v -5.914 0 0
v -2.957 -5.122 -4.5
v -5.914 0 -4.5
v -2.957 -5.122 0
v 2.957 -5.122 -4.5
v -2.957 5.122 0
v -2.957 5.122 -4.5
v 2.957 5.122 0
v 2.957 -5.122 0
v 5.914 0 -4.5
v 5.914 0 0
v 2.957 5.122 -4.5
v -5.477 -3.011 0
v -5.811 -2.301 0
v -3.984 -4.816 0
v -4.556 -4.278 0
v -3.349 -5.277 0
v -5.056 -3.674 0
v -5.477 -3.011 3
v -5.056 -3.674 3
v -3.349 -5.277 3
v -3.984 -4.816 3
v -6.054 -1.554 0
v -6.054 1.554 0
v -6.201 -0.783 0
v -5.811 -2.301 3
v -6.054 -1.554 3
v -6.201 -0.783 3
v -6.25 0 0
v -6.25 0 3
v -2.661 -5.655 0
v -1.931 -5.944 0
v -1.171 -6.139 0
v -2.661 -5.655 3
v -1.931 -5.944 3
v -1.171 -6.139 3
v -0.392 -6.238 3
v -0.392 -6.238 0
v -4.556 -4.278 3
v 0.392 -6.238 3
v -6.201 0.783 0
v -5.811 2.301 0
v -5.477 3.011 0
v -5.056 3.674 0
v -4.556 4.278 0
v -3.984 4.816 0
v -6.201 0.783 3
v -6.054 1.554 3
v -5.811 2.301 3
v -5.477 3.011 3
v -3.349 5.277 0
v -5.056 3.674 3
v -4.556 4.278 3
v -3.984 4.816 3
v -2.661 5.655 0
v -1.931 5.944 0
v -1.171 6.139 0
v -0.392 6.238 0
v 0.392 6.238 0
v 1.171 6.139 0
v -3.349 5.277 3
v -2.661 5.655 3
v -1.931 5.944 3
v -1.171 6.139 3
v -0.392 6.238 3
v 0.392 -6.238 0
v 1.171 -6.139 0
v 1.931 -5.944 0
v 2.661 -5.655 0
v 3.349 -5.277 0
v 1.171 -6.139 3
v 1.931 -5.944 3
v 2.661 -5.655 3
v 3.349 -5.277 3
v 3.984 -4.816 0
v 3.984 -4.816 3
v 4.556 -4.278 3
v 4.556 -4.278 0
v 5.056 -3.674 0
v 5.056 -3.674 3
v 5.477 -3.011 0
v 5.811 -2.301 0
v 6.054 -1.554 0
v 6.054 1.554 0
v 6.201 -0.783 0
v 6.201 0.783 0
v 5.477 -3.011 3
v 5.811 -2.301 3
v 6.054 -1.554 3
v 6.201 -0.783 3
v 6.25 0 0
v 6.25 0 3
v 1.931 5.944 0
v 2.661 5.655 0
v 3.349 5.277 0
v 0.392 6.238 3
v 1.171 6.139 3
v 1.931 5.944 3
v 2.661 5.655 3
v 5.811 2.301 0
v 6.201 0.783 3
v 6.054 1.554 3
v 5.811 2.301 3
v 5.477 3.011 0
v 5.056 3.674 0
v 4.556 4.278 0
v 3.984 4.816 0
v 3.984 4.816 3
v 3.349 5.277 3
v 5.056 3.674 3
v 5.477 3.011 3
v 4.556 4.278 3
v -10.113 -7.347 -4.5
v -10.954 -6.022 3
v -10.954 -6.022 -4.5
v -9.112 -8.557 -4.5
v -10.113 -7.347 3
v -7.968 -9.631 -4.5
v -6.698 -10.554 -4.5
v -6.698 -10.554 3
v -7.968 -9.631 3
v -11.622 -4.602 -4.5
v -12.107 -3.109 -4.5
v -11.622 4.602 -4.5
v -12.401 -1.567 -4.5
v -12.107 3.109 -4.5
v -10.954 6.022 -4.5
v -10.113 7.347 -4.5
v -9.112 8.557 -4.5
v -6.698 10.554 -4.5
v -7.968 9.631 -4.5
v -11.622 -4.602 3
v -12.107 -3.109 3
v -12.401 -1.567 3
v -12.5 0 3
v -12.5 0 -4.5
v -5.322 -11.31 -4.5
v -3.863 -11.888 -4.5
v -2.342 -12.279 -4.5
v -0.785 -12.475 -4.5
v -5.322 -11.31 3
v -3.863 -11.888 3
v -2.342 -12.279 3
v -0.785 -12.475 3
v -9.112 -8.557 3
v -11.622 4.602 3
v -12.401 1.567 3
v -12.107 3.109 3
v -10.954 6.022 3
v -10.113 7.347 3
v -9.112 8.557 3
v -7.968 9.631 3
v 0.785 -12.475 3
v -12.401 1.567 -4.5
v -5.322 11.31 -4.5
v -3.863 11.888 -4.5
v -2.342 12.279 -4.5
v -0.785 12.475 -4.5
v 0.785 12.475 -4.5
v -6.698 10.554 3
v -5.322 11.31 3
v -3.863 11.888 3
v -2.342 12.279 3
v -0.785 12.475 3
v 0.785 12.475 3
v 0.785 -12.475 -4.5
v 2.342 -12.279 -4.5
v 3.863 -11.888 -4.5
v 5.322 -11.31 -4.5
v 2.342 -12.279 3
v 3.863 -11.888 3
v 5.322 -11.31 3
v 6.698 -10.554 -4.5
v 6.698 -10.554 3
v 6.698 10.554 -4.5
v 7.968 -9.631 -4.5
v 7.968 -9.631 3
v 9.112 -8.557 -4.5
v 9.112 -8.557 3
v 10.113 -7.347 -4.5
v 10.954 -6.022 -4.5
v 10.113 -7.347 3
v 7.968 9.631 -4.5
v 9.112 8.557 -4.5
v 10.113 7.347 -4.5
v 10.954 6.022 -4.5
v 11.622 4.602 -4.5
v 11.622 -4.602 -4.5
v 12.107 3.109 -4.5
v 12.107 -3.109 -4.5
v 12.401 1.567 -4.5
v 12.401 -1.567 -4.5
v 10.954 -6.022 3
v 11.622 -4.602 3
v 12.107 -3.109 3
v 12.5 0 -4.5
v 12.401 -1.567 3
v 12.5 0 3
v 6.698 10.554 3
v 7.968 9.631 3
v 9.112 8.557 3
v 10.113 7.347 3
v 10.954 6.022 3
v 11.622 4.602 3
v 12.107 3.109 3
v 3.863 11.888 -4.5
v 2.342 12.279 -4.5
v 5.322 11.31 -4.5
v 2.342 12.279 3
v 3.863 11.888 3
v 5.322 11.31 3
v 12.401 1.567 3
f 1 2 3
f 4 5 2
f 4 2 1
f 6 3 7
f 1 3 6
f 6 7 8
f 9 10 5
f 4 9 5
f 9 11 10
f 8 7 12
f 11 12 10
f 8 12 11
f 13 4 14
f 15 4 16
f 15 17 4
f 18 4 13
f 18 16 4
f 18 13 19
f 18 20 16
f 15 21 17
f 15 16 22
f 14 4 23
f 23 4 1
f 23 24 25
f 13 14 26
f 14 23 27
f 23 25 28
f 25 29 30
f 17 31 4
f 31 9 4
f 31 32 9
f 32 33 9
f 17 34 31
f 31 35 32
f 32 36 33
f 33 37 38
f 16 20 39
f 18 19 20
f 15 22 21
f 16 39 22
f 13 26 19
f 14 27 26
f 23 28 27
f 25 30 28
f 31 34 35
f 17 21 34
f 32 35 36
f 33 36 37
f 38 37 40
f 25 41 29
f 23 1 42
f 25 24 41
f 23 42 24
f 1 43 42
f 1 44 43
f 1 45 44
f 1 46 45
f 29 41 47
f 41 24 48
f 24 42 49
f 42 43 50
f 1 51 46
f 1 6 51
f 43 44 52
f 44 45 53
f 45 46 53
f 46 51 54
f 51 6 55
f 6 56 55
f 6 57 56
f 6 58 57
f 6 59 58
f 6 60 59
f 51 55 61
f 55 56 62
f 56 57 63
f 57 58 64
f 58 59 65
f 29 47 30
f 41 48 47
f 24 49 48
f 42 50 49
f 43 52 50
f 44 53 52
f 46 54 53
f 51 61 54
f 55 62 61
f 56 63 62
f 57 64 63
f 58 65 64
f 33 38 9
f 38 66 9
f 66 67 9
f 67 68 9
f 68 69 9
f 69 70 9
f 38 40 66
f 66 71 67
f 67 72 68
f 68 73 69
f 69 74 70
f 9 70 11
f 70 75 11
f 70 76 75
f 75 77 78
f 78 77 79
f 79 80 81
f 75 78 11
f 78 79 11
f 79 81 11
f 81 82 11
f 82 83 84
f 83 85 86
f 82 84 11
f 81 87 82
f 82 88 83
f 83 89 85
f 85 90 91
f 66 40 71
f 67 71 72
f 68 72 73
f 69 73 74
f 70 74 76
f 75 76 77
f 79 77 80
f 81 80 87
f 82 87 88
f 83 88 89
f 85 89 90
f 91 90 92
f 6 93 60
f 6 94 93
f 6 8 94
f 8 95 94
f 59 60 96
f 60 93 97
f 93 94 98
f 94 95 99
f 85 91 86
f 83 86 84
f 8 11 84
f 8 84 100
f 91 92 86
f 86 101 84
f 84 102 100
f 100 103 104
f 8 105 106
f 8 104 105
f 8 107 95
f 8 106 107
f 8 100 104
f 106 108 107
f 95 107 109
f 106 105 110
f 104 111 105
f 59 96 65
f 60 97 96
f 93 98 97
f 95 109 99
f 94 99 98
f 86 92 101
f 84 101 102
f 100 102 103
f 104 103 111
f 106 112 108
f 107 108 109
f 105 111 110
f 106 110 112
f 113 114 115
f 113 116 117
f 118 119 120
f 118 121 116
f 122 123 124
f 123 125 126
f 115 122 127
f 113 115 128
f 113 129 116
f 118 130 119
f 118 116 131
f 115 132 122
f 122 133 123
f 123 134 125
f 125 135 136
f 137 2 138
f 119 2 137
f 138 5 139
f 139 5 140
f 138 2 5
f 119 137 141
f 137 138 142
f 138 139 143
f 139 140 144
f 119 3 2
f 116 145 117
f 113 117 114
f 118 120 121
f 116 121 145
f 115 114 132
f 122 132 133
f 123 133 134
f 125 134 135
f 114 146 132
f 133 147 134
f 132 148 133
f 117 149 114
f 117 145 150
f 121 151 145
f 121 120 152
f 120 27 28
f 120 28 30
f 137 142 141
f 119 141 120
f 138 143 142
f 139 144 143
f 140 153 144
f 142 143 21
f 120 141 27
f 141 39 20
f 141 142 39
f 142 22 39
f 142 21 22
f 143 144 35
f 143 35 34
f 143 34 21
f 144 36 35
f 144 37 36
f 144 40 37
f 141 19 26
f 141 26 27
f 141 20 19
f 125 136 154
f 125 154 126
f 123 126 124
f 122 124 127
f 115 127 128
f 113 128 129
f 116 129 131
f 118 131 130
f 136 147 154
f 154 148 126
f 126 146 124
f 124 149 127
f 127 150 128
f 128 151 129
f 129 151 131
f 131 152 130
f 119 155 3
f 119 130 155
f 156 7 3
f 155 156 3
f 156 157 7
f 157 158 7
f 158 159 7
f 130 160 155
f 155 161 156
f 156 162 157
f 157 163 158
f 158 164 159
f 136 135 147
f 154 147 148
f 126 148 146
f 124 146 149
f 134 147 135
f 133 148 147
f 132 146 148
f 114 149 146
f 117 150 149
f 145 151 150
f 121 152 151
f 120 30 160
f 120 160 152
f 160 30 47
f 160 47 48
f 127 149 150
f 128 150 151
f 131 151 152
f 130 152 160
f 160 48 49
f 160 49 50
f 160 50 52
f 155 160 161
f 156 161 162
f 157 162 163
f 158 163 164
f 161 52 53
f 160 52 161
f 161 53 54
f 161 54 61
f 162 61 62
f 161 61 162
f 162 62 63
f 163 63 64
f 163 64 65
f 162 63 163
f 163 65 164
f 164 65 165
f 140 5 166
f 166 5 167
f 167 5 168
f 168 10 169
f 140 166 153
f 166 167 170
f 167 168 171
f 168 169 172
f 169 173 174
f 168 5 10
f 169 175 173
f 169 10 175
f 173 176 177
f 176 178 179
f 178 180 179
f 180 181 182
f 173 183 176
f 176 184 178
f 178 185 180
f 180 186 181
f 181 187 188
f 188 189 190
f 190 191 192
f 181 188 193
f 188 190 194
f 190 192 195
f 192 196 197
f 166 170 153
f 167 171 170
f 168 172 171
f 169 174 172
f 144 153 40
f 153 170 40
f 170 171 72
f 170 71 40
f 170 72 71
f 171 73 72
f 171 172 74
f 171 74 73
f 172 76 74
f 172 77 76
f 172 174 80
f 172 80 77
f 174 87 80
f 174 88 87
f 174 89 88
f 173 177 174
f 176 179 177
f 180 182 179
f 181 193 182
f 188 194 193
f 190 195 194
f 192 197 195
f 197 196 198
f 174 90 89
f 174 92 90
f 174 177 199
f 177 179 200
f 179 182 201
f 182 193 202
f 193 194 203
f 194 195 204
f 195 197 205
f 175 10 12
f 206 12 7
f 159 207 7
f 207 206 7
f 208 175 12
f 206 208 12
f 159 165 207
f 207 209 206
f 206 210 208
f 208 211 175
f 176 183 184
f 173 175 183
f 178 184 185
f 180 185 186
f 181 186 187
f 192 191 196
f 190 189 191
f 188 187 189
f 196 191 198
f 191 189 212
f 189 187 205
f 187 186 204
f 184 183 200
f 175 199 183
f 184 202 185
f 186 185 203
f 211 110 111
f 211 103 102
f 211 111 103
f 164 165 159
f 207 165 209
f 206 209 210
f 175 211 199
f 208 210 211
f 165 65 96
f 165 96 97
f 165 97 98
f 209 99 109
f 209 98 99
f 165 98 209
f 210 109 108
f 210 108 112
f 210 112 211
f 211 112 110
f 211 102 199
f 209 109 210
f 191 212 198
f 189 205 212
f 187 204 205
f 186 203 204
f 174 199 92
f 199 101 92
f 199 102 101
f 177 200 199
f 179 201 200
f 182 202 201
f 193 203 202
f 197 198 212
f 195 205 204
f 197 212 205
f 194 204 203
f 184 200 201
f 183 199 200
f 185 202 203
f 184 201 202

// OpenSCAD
$fn = 50;


difference() {
	union() {
		translate(v = [0, 0, -4.5000000000]) {
			cylinder(h = 7.5000000000, r = 12.5000000000);
		}
	}
	union() {
		translate(v = [0, 0, 0]) {
			rotate(a = [0, 0, 0]) {
				difference() {
					union() {
						translate(v = [0, 0, -5]) {
							linear_extrude(height = 5) {
								polygon(points = [[5.9142500000, 0.0000000000], [2.9571250000, 5.1218907443], [-2.9571250000, 5.1218907443], [-5.9142500000, 0.0000000000], [-2.9571250000, -5.1218907443], [2.9571250000, -5.1218907443]]);
							}
						}
					}
					union();
				}
			}
		}
		#cylinder(h = 3, r = 6.2500000000);
		#translate(v = [0, 0, -100.0000000000]) {
			cylinder(h = 200, r = 3.2500000000);
		}
	}
}
